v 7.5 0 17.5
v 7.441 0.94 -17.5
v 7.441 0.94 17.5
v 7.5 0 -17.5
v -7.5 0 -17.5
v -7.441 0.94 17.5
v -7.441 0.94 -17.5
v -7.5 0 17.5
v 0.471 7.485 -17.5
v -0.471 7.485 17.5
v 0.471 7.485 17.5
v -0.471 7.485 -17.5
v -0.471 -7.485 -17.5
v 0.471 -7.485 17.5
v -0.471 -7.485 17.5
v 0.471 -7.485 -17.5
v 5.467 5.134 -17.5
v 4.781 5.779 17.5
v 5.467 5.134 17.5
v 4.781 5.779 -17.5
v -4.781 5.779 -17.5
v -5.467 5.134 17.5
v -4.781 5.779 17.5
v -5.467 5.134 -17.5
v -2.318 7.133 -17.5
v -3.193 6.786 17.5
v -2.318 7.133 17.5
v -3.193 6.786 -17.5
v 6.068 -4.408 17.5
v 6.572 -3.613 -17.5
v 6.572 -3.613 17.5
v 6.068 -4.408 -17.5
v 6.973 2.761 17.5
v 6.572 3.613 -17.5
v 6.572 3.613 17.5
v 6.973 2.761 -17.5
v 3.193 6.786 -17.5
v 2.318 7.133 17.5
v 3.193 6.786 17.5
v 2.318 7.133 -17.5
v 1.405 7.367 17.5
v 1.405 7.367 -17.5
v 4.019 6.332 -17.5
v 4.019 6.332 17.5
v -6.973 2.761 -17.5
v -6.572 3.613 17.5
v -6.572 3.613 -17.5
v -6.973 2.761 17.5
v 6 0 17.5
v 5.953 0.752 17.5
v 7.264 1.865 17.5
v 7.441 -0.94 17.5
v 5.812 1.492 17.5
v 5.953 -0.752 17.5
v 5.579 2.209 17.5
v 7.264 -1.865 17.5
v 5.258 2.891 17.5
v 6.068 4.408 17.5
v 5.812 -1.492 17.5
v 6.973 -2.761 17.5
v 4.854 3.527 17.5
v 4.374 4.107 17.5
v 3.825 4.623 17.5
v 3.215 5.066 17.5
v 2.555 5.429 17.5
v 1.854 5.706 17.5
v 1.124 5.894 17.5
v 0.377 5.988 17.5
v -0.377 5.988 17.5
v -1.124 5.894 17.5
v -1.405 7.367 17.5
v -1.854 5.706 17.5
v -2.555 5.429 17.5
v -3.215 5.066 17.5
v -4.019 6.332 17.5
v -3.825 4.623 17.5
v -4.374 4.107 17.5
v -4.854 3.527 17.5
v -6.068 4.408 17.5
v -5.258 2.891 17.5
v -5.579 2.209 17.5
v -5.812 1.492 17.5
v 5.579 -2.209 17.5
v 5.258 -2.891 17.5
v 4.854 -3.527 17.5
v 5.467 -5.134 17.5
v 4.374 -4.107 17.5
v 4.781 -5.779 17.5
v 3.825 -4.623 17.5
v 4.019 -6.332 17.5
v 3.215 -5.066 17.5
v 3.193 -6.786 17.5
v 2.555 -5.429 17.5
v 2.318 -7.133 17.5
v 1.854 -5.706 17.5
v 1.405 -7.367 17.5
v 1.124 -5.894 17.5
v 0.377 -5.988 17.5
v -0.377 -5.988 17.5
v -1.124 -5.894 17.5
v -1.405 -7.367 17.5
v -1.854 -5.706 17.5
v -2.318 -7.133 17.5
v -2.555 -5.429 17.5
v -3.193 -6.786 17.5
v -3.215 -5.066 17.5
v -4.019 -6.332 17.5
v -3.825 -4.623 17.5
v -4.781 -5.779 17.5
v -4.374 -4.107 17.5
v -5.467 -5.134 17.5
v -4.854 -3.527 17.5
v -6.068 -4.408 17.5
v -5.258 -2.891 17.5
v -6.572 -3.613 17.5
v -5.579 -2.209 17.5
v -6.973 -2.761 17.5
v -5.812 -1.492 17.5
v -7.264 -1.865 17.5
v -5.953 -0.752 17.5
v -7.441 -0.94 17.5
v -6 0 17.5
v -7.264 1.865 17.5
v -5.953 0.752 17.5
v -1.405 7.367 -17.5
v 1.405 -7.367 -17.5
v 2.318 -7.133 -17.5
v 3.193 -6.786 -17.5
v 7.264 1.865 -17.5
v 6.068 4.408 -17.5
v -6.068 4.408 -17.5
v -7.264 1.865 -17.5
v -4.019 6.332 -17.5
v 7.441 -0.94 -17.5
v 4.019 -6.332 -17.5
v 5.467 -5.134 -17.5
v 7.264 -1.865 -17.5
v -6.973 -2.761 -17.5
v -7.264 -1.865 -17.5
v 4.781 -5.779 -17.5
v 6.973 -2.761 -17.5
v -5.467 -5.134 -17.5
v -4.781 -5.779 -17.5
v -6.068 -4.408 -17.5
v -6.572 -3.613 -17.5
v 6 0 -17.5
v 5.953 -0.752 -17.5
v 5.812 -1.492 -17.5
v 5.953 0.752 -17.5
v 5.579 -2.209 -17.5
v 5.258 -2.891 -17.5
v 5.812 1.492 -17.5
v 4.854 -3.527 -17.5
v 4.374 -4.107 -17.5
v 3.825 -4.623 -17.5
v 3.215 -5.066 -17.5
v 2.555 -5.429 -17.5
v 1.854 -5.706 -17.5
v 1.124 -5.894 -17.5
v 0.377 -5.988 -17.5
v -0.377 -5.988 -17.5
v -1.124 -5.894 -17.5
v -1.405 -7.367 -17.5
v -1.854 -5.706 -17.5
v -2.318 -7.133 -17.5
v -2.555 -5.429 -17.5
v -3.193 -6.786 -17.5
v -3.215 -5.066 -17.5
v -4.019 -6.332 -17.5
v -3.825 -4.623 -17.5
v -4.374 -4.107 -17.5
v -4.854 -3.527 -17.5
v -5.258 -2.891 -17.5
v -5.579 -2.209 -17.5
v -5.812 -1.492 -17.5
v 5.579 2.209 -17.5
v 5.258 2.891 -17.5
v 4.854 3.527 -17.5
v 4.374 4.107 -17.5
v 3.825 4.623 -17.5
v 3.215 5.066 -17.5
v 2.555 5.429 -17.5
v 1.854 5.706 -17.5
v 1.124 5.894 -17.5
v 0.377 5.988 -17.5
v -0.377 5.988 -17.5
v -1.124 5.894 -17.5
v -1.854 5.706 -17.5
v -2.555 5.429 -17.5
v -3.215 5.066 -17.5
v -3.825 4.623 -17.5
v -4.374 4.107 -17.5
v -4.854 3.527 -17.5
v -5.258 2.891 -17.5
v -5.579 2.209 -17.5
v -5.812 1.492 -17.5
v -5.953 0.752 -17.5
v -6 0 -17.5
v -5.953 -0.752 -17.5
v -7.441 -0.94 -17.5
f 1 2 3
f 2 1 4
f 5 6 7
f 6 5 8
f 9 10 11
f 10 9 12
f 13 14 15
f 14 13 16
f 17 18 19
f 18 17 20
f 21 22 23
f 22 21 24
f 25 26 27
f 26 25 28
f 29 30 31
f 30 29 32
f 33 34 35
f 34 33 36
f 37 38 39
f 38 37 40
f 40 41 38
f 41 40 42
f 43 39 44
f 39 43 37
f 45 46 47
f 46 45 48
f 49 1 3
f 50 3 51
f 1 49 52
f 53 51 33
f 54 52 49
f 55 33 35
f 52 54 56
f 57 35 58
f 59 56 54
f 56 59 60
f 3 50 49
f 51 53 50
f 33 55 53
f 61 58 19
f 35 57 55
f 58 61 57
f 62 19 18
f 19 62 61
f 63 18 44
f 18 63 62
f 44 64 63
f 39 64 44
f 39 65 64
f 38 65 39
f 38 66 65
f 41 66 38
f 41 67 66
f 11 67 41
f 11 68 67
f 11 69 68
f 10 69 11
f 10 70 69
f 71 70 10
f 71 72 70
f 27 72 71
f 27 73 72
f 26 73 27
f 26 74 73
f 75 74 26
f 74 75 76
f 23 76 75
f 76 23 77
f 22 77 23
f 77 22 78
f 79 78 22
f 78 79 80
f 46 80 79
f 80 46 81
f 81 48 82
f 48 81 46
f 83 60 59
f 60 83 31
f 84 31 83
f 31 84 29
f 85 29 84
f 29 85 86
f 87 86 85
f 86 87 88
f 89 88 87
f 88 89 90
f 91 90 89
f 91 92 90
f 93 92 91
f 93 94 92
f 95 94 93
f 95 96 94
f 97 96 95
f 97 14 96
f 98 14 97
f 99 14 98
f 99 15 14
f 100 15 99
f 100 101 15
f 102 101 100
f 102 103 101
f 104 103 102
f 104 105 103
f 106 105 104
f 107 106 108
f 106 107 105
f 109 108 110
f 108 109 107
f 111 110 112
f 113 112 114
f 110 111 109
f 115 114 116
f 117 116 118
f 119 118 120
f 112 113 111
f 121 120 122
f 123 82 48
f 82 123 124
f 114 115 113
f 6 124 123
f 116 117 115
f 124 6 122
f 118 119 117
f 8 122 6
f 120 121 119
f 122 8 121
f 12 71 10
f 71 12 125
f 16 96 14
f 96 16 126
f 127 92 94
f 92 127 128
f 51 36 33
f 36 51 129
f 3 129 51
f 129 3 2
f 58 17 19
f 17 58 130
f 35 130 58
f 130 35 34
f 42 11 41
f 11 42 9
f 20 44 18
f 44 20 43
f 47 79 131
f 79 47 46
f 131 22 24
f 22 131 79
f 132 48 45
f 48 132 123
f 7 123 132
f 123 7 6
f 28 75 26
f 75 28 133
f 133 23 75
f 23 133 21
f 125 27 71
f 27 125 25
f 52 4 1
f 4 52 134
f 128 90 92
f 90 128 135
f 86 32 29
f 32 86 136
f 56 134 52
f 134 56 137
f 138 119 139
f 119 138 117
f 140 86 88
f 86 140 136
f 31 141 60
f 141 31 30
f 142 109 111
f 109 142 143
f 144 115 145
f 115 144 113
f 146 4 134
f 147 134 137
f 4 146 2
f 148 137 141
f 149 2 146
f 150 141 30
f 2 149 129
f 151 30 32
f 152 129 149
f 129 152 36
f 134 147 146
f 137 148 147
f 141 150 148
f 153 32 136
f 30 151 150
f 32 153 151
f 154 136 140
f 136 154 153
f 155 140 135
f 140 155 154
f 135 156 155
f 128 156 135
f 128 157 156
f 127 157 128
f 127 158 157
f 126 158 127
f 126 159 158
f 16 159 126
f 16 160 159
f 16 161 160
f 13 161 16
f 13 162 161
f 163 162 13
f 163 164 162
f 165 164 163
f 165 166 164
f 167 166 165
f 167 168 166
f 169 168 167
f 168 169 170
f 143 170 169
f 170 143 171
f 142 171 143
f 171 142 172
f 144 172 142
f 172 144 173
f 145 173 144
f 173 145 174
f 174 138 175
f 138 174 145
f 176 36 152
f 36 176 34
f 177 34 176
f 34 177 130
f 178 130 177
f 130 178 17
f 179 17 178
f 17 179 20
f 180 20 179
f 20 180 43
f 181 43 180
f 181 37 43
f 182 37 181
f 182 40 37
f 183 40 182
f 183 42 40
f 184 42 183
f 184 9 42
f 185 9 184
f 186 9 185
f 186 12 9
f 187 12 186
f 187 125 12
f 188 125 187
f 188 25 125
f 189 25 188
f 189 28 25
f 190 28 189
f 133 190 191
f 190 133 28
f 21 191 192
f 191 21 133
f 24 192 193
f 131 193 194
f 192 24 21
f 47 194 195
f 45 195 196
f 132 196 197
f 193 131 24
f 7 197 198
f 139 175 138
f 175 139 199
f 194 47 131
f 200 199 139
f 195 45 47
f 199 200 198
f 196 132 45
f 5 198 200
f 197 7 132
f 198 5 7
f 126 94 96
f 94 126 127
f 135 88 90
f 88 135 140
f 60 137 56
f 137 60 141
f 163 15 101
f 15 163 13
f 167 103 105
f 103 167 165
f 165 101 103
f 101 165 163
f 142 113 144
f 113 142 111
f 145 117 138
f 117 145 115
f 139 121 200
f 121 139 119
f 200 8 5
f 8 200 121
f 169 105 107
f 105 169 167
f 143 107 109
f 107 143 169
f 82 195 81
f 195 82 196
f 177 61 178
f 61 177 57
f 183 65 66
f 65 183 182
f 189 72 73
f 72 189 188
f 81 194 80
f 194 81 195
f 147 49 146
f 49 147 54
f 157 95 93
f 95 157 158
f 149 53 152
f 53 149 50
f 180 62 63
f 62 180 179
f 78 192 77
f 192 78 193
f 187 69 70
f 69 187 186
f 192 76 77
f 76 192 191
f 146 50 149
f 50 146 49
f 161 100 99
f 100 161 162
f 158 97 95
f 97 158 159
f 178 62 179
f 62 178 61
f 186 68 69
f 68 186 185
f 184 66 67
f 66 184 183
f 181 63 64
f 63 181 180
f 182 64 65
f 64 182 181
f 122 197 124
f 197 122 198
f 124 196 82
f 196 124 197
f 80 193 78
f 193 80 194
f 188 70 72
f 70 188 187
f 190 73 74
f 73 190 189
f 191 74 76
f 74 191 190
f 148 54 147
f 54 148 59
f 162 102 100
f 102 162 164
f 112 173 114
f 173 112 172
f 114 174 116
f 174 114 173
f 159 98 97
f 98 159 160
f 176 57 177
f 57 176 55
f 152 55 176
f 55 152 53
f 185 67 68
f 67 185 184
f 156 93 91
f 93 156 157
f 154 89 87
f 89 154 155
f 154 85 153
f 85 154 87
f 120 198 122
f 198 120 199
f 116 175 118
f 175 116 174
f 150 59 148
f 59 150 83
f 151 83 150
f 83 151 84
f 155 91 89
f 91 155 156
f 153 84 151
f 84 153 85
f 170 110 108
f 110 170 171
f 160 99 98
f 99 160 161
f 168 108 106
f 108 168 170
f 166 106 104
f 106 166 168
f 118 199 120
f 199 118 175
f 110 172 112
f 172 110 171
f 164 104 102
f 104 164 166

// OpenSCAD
$fn = 50;


difference() {
	union() {
		translate(v = [0, 0, -17.5000000000]) {
			cylinder(h = 35, r = 7.5000000000);
		}
	}
	union() {
		translate(v = [0, 0, -100.0000000000]) {
			cylinder(h = 200, r = 6);
		}
	}
}
